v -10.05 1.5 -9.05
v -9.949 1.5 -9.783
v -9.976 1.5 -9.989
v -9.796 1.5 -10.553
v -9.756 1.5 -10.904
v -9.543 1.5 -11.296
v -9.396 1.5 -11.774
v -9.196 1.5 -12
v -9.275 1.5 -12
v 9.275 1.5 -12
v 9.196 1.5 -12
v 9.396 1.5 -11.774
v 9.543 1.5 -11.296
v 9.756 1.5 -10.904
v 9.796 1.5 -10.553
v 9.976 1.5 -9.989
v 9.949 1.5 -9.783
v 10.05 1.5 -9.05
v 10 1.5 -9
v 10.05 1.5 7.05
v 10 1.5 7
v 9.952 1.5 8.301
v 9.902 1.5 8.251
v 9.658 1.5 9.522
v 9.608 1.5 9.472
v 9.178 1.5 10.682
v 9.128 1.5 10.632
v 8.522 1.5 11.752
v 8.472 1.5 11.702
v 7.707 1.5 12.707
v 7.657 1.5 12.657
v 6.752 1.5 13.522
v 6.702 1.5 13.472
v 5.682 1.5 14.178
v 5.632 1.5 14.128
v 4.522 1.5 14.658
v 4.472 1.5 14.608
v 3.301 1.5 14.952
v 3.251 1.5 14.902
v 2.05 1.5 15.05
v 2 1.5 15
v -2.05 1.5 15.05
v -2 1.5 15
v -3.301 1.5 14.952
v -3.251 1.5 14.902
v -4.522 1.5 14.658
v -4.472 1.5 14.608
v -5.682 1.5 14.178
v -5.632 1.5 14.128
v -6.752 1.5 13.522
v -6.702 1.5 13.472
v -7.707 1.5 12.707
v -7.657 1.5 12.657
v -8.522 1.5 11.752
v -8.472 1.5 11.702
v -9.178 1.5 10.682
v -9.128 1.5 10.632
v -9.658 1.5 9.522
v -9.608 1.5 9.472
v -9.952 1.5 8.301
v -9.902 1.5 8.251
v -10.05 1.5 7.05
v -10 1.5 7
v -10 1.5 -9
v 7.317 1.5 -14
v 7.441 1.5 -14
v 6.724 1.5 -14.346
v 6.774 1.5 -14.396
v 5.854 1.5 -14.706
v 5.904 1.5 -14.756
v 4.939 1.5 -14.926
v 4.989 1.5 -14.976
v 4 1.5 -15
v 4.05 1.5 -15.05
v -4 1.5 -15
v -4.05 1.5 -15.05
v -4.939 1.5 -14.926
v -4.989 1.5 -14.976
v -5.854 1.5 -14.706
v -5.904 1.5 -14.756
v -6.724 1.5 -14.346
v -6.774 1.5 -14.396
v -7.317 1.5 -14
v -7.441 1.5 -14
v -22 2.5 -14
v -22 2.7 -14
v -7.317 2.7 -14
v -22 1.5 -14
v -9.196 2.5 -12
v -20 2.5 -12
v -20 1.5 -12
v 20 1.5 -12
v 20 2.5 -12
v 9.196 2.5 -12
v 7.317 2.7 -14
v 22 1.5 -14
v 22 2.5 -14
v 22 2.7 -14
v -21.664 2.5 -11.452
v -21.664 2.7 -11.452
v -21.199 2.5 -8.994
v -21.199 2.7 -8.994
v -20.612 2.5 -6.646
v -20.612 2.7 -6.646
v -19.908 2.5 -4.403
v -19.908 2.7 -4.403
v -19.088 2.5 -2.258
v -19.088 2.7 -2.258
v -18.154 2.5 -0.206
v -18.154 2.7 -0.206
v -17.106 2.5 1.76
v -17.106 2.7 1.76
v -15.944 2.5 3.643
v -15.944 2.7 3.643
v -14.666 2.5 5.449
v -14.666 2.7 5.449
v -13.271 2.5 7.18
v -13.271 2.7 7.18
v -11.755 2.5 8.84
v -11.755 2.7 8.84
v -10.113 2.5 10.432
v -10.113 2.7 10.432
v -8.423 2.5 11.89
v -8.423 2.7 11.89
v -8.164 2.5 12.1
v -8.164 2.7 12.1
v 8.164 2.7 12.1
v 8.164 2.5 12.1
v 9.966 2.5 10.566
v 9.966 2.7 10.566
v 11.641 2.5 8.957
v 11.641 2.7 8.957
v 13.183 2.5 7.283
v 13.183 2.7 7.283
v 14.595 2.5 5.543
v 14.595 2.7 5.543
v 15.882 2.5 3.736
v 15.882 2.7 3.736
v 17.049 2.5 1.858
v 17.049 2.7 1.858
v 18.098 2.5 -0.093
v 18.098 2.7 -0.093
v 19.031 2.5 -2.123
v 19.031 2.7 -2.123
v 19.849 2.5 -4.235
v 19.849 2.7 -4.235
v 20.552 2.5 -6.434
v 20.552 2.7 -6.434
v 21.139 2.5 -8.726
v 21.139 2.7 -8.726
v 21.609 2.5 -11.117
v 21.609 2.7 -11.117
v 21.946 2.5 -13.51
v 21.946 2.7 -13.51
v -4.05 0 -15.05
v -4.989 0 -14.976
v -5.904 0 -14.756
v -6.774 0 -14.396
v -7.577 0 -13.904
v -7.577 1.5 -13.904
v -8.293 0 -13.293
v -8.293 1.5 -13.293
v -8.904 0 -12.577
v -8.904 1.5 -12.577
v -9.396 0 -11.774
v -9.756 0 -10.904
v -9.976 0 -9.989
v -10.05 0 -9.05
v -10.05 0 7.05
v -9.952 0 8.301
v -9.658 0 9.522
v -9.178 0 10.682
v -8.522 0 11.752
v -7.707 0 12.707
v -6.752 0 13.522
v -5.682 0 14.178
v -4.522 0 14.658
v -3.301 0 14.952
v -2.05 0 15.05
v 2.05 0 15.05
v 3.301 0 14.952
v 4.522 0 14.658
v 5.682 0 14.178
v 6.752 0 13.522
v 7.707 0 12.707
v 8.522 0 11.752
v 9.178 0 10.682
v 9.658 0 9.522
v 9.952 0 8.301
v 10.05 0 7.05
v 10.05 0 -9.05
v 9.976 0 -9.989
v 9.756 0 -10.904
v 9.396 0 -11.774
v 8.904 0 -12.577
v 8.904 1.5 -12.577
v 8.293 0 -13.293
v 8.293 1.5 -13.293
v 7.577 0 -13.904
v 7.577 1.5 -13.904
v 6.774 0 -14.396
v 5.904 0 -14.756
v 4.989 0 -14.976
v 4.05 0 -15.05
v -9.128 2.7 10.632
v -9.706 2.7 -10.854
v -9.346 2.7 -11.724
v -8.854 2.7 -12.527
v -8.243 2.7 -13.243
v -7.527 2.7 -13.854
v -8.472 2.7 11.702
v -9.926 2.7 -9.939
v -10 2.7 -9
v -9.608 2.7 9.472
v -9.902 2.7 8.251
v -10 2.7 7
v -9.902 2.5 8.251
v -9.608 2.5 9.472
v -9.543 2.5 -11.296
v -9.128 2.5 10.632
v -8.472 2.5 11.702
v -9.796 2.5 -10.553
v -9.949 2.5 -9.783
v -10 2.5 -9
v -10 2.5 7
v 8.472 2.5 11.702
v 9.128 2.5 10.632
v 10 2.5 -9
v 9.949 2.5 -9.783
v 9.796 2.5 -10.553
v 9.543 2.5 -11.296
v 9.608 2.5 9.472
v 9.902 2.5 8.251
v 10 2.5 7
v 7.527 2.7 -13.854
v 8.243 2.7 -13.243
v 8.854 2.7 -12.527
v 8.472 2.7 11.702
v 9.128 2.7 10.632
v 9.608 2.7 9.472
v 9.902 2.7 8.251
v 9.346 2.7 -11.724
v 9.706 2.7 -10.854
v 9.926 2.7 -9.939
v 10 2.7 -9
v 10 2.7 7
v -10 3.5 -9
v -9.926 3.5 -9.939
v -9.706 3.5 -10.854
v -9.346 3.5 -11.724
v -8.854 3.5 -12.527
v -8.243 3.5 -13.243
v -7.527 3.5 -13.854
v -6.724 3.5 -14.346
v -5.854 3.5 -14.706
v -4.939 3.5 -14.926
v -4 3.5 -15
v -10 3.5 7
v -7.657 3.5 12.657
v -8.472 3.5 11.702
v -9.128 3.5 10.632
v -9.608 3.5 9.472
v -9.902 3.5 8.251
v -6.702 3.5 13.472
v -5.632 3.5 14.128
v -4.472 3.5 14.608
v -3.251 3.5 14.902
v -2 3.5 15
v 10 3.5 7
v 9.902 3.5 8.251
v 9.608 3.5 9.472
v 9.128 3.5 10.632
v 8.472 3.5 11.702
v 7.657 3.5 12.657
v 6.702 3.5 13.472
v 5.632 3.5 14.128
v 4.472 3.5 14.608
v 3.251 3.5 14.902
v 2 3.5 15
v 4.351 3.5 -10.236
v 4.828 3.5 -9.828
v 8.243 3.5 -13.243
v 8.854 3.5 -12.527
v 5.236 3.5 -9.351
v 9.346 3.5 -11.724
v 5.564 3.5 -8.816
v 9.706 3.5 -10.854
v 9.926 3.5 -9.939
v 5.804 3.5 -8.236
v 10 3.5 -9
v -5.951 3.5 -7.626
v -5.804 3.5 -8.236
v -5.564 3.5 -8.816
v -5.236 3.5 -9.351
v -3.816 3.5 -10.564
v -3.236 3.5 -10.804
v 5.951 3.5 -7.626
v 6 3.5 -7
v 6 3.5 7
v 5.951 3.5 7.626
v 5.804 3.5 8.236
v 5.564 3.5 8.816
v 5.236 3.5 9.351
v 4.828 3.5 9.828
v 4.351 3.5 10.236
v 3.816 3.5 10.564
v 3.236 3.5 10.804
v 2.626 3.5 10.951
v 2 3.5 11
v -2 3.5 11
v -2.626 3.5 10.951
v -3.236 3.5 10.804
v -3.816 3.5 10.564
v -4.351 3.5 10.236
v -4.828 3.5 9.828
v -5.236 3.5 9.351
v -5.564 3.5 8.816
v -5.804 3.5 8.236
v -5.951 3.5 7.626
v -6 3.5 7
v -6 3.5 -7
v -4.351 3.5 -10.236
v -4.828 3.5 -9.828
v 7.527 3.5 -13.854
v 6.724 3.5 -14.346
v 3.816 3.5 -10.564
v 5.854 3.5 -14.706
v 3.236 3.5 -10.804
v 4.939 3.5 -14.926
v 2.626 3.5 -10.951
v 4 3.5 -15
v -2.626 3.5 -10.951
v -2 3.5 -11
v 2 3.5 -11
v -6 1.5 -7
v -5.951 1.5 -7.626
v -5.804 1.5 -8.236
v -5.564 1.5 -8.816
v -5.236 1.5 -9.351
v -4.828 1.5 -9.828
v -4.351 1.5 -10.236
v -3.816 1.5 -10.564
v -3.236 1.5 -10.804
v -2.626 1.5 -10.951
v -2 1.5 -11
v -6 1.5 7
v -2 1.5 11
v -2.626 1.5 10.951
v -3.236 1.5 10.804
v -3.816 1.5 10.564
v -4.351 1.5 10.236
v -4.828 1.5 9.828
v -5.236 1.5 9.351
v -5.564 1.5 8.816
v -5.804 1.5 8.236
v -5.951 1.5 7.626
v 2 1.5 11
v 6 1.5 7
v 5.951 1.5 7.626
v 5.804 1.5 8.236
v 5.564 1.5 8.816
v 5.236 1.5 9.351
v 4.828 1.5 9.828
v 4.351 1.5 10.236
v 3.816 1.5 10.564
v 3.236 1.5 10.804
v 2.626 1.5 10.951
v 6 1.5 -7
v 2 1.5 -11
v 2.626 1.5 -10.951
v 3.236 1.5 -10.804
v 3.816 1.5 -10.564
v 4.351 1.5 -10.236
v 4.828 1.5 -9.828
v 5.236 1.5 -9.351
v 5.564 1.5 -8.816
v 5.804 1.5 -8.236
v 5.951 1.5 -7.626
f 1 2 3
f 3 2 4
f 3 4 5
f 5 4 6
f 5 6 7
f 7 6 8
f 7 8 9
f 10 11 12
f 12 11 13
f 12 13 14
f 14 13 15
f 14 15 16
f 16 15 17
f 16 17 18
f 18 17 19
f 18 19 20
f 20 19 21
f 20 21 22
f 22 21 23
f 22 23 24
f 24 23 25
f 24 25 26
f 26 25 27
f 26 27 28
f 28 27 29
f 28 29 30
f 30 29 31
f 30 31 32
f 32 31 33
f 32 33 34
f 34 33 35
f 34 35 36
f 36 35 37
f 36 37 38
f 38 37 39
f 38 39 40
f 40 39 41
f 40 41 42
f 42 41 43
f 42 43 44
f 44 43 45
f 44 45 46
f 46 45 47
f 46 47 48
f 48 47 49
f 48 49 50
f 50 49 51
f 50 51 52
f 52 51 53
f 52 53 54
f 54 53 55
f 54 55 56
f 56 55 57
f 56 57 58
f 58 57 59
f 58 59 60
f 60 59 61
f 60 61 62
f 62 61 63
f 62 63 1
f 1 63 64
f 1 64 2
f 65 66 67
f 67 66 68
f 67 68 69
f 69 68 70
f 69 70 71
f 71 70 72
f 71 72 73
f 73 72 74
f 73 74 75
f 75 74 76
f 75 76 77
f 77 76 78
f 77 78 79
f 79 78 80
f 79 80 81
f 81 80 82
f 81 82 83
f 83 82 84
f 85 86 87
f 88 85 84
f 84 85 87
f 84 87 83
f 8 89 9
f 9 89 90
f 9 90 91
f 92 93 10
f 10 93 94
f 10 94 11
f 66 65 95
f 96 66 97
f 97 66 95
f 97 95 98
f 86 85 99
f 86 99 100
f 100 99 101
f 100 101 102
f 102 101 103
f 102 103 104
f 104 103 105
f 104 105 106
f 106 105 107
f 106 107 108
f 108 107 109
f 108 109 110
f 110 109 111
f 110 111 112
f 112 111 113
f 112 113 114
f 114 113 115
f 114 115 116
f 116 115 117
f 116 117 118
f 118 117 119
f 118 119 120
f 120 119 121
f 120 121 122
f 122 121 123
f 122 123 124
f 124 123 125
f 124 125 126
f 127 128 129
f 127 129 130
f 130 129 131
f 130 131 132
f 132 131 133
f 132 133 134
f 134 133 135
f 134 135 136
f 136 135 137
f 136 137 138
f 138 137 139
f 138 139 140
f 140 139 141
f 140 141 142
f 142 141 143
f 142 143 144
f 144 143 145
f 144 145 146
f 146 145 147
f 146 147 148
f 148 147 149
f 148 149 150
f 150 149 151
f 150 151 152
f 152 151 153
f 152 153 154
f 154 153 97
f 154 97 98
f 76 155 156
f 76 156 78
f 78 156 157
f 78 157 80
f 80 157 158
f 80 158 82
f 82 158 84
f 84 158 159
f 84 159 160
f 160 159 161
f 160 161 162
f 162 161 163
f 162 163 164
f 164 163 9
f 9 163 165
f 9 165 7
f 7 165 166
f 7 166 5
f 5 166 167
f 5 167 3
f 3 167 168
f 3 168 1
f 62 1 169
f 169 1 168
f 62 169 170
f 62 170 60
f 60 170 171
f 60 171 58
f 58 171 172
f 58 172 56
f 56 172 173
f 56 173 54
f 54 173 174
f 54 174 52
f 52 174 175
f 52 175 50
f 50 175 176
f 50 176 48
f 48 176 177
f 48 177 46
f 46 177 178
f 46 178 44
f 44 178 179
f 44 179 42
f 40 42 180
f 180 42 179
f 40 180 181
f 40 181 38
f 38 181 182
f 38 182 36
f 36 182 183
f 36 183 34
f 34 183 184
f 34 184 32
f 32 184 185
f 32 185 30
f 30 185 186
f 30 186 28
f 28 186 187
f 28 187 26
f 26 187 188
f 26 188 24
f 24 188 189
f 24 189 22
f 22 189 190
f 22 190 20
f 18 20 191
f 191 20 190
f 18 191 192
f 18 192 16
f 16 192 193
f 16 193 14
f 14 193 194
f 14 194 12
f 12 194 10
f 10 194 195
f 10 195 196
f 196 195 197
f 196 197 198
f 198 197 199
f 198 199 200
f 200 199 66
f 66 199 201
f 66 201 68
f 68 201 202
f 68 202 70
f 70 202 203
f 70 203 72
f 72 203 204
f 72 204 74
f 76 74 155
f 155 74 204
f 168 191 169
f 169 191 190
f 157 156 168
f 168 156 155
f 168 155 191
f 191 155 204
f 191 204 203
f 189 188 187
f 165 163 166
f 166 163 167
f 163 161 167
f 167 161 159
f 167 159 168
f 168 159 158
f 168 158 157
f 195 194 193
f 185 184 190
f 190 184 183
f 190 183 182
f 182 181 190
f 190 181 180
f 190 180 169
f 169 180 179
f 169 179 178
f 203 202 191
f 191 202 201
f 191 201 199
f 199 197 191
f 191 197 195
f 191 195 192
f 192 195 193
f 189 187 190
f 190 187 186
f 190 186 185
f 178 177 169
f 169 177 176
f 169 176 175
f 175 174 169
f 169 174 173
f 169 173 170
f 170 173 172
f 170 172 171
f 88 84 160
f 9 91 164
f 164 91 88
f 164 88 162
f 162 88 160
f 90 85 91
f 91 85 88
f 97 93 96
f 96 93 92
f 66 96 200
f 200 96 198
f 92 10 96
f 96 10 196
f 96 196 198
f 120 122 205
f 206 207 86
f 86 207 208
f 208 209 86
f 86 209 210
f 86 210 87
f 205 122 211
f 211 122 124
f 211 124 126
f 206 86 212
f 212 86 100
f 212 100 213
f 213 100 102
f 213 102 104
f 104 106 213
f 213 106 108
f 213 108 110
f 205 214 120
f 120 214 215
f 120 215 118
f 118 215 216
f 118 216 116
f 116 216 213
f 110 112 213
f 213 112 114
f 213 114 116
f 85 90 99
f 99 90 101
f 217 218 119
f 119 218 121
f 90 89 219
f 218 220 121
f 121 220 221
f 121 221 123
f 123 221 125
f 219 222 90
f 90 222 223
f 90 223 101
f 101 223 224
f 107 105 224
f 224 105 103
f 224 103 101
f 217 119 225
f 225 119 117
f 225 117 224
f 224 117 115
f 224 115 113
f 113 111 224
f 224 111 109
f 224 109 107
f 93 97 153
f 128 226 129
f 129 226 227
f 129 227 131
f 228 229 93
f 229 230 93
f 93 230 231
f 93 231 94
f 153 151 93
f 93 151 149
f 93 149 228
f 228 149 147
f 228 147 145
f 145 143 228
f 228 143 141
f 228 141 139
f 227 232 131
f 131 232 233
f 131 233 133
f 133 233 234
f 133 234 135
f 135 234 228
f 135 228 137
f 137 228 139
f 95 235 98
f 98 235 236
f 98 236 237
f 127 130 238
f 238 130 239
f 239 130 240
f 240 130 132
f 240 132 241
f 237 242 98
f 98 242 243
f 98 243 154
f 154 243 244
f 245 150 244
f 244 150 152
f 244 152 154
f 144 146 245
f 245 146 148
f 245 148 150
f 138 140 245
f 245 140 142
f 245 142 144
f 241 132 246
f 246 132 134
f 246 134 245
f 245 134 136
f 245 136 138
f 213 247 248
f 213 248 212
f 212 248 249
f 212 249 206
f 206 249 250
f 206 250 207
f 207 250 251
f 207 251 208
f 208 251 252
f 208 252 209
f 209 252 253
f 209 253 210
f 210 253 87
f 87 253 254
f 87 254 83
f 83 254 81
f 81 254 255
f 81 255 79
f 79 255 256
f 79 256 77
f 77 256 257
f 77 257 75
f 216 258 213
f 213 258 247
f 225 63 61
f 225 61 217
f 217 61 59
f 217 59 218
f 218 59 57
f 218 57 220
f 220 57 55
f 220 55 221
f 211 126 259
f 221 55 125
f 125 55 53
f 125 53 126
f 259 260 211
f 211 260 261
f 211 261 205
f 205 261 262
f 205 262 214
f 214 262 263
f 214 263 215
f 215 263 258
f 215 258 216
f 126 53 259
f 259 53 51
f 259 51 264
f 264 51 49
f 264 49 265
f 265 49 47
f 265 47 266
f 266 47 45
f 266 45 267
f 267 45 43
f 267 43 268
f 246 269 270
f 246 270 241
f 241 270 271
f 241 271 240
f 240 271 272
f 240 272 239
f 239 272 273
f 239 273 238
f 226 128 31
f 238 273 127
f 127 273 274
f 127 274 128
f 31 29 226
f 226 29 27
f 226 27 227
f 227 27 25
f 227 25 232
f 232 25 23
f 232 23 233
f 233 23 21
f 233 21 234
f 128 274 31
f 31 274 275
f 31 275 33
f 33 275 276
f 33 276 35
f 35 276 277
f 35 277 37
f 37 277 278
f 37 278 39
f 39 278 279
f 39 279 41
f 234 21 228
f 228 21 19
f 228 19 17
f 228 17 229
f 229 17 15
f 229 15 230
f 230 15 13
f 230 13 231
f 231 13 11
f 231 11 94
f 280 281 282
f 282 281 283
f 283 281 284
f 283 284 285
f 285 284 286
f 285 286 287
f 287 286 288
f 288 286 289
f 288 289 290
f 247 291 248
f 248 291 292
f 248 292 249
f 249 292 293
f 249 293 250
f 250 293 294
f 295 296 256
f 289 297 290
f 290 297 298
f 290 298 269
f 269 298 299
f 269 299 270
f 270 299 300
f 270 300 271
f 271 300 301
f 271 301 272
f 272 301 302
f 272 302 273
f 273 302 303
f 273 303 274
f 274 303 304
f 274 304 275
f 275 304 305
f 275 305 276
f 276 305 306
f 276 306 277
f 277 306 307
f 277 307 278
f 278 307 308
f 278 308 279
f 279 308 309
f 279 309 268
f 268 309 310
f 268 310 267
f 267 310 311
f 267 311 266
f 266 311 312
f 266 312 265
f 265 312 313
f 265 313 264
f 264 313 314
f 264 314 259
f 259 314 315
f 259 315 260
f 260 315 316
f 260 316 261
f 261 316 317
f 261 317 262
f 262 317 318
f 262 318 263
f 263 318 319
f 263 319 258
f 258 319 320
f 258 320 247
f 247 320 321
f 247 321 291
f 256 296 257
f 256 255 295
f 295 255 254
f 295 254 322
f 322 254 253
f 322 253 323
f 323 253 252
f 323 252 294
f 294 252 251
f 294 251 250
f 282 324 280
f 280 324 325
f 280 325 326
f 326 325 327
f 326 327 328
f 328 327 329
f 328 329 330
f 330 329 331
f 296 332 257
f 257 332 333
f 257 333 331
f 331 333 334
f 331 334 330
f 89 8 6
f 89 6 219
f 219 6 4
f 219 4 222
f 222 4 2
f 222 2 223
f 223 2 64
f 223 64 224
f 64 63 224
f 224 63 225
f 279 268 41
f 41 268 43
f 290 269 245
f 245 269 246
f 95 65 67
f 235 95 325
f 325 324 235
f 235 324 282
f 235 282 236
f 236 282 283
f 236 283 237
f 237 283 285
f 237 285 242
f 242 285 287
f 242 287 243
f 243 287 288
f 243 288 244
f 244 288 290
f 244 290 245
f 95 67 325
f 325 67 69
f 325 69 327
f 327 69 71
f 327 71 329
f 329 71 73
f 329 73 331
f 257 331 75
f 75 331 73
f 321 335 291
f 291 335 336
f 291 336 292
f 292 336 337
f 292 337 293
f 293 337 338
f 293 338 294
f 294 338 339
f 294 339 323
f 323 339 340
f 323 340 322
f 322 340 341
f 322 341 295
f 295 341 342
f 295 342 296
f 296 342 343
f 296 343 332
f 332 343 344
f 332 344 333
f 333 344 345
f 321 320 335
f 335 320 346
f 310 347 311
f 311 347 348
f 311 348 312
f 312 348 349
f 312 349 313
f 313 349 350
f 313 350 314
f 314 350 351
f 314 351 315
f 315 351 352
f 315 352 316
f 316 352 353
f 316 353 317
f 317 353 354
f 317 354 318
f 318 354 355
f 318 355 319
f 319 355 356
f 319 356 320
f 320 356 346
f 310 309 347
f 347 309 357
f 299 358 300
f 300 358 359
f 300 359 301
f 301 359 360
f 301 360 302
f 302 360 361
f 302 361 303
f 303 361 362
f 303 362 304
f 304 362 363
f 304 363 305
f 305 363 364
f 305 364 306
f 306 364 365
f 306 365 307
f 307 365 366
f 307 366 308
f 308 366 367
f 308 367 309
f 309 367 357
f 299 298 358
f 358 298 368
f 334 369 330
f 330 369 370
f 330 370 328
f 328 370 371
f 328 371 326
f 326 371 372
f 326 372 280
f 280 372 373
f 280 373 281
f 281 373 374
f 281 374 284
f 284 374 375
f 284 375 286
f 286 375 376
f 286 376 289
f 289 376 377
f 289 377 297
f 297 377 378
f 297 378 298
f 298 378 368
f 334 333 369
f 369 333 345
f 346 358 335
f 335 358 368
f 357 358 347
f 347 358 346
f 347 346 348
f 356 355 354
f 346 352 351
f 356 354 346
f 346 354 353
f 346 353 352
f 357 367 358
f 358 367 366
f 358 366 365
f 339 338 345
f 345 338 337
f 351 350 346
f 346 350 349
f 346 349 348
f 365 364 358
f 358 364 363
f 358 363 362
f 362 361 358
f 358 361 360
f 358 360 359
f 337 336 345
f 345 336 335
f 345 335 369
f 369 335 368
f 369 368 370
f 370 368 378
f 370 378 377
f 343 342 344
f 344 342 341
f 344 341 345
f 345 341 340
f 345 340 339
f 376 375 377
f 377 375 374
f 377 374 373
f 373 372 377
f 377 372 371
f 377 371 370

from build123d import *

# Parameters (mm, degrees)
EXTRUDE_1_DEPTH = 1.5
SKETCH_2_W      = 2
SKETCH_2_H      = 22
EXTRUDE_2_DEPTH = 1
EXTRUDE_3_DEPTH = 0.2
EXTRUDE_4_DEPTH = 2


with BuildPart() as part:
    # 草图1 → 凸台-拉伸1 (new body)
    with BuildSketch(Plane(origin=(0, 0, 0), x_dir=(1, 0, 0), z_dir=(0, 1, 0))):
        with BuildLine():
            Line((-4.05, 15.05), (4.05, 15.05))
            ThreePointArc((4.05, 15.05), (8.292640687, 13.292640687), (10.05, 9.05))
            Line((10.05, 9.05), (10.05, -7.05))
            ThreePointArc((10.05, -7.05), (7.706854249, -12.706854249), (2.05, -15.05))
            Line((2.05, -15.05), (-2.05, -15.05))
            ThreePointArc((-2.05, -15.05), (-7.706854249, -12.706854249), (-10.05, -7.05))
            Line((-10.05, -7.05), (-10.05, 9.05))
            ThreePointArc((-10.05, 9.05), (-8.292640687, 13.292640687), (-4.05, 15.05))
        make_face()
    extrude(amount=EXTRUDE_1_DEPTH)

    # 草图2 → 凸台-拉伸2 (add)
    with BuildSketch(Plane(origin=(0, 1.5, 0), x_dir=(1, 0, 0), z_dir=(0, 1, 0))):
        with Locations((-8, 1)):
            Rectangle(SKETCH_2_W, SKETCH_2_H)
        with BuildLine():
            Line((-9, 12), (-7, 12))
            Line((-7, 12), (-2, 12))
            Line((-2, 12), (-2, 14))
            Line((-2, 14), (-7.440796367, 14))
            ThreePointArc((-7.440796367, 14), (-8.472295614, 13.105034094), (-9.274700948, 12))
            Line((-9.274700948, 12), (-9, 12))
        make_face()
        with BuildLine():
            Line((-20, 12), (-9.274700948, 12))
            ThreePointArc((-9.274700948, 12), (-8.472295614, 13.105034094), (-7.440796367, 14))
            Line((-7.440796367, 14), (-20, 14))
            Line((-20, 14), (-20, 12))
        make_face()
        Polygon((-20, 14), (-22, 14), (-20, 12), align=None)
        Polygon((-7, -13), (-9, -10), (-7, -10), align=None)
        with BuildLine():
            ThreePointArc((9.274700948, 12), (8.472295614, 13.105034094), (7.440796367, 14))
            Line((7.440796367, 14), (2, 14))
            Line((2, 14), (2, 12))
            Line((2, 12), (7, 12))
            Line((7, 12), (9, 12))
            Line((9, 12), (9.274700948, 12))
        make_face()
        with BuildLine():
            Line((20, 12), (20, 14))
            Line((20, 14), (7.440796367, 14))
            ThreePointArc((7.440796367, 14), (8.472295614, 13.105034094), (9.274700948, 12))
            Line((9.274700948, 12), (20, 12))
        make_face()
        Polygon((20, 12), (20, 14), (22, 14), align=None)
        with Locations((8, 1)):
            Rectangle(SKETCH_2_W, SKETCH_2_H)
        Polygon((7, -10), (9, -10), (7, -13), align=None)
    extrude(amount=EXTRUDE_2_DEPTH)

    # 草图3 → 凸台-拉伸3 (add)
    with BuildSketch(Plane(origin=(0, 2.5, 0), x_dir=(1, 0, 0), z_dir=(0, 1, 0))):
        with BuildLine():
            Line((-7, -13), (-7, 14))
            Line((-7, 14), (-22, 14))
            add(Edge.make_bspline(
                [(-22, 14), (-20.203305703, -3.149159716), (-7, -13)],
                knots=[0, 0, 0, 1, 1, 1], degree=2))
        make_face()
        with BuildLine():
            Line((7, -13), (7, 14))
            Line((7, 14), (22, 14))
            add(Edge.make_bspline(
                [(22, 14), (20.203305703, -3.149159716), (7, -13)],
                knots=[0, 0, 0, 1, 1, 1], degree=2))
        make_face()
    extrude(amount=EXTRUDE_3_DEPTH)

    # 草图4 → 凸台-拉伸4 (add)
    with BuildSketch(Plane(origin=(0, 1.5, 0), x_dir=(1, 0, 0), z_dir=(0, 1, 0))):
        with BuildLine():
            Line((-4, 15), (4, 15))
            ThreePointArc((4, 15), (8.242640687, 13.242640687), (10, 9))
            Line((10, 9), (10, -7))
            ThreePointArc((10, -7), (7.656854249, -12.656854249), (2, -15))
            Line((2, -15), (-2, -15))
            ThreePointArc((-2, -15), (-7.656854249, -12.656854249), (-10, -7))
            Line((-10, -7), (-10, 9))
            ThreePointArc((-10, 9), (-8.242640687, 13.242640687), (-4, 15))
        make_face()
        with BuildLine():
            Line((-2, 11), (2, 11))
            ThreePointArc((2, 11), (4.828427125, 9.828427125), (6, 7))
            Line((6, 7), (6, -7))
            ThreePointArc((6, -7), (4.828427125, -9.828427125), (2, -11))
            Line((2, -11), (-2, -11))
            ThreePointArc((-2, -11), (-4.828427125, -9.828427125), (-6, -7))
            Line((-6, -7), (-6, 7))
            ThreePointArc((-6, 7), (-4.828427125, 9.828427125), (-2, 11))
        make_face(mode=Mode.SUBTRACT)
    extrude(amount=EXTRUDE_4_DEPTH)


solid = part.part
